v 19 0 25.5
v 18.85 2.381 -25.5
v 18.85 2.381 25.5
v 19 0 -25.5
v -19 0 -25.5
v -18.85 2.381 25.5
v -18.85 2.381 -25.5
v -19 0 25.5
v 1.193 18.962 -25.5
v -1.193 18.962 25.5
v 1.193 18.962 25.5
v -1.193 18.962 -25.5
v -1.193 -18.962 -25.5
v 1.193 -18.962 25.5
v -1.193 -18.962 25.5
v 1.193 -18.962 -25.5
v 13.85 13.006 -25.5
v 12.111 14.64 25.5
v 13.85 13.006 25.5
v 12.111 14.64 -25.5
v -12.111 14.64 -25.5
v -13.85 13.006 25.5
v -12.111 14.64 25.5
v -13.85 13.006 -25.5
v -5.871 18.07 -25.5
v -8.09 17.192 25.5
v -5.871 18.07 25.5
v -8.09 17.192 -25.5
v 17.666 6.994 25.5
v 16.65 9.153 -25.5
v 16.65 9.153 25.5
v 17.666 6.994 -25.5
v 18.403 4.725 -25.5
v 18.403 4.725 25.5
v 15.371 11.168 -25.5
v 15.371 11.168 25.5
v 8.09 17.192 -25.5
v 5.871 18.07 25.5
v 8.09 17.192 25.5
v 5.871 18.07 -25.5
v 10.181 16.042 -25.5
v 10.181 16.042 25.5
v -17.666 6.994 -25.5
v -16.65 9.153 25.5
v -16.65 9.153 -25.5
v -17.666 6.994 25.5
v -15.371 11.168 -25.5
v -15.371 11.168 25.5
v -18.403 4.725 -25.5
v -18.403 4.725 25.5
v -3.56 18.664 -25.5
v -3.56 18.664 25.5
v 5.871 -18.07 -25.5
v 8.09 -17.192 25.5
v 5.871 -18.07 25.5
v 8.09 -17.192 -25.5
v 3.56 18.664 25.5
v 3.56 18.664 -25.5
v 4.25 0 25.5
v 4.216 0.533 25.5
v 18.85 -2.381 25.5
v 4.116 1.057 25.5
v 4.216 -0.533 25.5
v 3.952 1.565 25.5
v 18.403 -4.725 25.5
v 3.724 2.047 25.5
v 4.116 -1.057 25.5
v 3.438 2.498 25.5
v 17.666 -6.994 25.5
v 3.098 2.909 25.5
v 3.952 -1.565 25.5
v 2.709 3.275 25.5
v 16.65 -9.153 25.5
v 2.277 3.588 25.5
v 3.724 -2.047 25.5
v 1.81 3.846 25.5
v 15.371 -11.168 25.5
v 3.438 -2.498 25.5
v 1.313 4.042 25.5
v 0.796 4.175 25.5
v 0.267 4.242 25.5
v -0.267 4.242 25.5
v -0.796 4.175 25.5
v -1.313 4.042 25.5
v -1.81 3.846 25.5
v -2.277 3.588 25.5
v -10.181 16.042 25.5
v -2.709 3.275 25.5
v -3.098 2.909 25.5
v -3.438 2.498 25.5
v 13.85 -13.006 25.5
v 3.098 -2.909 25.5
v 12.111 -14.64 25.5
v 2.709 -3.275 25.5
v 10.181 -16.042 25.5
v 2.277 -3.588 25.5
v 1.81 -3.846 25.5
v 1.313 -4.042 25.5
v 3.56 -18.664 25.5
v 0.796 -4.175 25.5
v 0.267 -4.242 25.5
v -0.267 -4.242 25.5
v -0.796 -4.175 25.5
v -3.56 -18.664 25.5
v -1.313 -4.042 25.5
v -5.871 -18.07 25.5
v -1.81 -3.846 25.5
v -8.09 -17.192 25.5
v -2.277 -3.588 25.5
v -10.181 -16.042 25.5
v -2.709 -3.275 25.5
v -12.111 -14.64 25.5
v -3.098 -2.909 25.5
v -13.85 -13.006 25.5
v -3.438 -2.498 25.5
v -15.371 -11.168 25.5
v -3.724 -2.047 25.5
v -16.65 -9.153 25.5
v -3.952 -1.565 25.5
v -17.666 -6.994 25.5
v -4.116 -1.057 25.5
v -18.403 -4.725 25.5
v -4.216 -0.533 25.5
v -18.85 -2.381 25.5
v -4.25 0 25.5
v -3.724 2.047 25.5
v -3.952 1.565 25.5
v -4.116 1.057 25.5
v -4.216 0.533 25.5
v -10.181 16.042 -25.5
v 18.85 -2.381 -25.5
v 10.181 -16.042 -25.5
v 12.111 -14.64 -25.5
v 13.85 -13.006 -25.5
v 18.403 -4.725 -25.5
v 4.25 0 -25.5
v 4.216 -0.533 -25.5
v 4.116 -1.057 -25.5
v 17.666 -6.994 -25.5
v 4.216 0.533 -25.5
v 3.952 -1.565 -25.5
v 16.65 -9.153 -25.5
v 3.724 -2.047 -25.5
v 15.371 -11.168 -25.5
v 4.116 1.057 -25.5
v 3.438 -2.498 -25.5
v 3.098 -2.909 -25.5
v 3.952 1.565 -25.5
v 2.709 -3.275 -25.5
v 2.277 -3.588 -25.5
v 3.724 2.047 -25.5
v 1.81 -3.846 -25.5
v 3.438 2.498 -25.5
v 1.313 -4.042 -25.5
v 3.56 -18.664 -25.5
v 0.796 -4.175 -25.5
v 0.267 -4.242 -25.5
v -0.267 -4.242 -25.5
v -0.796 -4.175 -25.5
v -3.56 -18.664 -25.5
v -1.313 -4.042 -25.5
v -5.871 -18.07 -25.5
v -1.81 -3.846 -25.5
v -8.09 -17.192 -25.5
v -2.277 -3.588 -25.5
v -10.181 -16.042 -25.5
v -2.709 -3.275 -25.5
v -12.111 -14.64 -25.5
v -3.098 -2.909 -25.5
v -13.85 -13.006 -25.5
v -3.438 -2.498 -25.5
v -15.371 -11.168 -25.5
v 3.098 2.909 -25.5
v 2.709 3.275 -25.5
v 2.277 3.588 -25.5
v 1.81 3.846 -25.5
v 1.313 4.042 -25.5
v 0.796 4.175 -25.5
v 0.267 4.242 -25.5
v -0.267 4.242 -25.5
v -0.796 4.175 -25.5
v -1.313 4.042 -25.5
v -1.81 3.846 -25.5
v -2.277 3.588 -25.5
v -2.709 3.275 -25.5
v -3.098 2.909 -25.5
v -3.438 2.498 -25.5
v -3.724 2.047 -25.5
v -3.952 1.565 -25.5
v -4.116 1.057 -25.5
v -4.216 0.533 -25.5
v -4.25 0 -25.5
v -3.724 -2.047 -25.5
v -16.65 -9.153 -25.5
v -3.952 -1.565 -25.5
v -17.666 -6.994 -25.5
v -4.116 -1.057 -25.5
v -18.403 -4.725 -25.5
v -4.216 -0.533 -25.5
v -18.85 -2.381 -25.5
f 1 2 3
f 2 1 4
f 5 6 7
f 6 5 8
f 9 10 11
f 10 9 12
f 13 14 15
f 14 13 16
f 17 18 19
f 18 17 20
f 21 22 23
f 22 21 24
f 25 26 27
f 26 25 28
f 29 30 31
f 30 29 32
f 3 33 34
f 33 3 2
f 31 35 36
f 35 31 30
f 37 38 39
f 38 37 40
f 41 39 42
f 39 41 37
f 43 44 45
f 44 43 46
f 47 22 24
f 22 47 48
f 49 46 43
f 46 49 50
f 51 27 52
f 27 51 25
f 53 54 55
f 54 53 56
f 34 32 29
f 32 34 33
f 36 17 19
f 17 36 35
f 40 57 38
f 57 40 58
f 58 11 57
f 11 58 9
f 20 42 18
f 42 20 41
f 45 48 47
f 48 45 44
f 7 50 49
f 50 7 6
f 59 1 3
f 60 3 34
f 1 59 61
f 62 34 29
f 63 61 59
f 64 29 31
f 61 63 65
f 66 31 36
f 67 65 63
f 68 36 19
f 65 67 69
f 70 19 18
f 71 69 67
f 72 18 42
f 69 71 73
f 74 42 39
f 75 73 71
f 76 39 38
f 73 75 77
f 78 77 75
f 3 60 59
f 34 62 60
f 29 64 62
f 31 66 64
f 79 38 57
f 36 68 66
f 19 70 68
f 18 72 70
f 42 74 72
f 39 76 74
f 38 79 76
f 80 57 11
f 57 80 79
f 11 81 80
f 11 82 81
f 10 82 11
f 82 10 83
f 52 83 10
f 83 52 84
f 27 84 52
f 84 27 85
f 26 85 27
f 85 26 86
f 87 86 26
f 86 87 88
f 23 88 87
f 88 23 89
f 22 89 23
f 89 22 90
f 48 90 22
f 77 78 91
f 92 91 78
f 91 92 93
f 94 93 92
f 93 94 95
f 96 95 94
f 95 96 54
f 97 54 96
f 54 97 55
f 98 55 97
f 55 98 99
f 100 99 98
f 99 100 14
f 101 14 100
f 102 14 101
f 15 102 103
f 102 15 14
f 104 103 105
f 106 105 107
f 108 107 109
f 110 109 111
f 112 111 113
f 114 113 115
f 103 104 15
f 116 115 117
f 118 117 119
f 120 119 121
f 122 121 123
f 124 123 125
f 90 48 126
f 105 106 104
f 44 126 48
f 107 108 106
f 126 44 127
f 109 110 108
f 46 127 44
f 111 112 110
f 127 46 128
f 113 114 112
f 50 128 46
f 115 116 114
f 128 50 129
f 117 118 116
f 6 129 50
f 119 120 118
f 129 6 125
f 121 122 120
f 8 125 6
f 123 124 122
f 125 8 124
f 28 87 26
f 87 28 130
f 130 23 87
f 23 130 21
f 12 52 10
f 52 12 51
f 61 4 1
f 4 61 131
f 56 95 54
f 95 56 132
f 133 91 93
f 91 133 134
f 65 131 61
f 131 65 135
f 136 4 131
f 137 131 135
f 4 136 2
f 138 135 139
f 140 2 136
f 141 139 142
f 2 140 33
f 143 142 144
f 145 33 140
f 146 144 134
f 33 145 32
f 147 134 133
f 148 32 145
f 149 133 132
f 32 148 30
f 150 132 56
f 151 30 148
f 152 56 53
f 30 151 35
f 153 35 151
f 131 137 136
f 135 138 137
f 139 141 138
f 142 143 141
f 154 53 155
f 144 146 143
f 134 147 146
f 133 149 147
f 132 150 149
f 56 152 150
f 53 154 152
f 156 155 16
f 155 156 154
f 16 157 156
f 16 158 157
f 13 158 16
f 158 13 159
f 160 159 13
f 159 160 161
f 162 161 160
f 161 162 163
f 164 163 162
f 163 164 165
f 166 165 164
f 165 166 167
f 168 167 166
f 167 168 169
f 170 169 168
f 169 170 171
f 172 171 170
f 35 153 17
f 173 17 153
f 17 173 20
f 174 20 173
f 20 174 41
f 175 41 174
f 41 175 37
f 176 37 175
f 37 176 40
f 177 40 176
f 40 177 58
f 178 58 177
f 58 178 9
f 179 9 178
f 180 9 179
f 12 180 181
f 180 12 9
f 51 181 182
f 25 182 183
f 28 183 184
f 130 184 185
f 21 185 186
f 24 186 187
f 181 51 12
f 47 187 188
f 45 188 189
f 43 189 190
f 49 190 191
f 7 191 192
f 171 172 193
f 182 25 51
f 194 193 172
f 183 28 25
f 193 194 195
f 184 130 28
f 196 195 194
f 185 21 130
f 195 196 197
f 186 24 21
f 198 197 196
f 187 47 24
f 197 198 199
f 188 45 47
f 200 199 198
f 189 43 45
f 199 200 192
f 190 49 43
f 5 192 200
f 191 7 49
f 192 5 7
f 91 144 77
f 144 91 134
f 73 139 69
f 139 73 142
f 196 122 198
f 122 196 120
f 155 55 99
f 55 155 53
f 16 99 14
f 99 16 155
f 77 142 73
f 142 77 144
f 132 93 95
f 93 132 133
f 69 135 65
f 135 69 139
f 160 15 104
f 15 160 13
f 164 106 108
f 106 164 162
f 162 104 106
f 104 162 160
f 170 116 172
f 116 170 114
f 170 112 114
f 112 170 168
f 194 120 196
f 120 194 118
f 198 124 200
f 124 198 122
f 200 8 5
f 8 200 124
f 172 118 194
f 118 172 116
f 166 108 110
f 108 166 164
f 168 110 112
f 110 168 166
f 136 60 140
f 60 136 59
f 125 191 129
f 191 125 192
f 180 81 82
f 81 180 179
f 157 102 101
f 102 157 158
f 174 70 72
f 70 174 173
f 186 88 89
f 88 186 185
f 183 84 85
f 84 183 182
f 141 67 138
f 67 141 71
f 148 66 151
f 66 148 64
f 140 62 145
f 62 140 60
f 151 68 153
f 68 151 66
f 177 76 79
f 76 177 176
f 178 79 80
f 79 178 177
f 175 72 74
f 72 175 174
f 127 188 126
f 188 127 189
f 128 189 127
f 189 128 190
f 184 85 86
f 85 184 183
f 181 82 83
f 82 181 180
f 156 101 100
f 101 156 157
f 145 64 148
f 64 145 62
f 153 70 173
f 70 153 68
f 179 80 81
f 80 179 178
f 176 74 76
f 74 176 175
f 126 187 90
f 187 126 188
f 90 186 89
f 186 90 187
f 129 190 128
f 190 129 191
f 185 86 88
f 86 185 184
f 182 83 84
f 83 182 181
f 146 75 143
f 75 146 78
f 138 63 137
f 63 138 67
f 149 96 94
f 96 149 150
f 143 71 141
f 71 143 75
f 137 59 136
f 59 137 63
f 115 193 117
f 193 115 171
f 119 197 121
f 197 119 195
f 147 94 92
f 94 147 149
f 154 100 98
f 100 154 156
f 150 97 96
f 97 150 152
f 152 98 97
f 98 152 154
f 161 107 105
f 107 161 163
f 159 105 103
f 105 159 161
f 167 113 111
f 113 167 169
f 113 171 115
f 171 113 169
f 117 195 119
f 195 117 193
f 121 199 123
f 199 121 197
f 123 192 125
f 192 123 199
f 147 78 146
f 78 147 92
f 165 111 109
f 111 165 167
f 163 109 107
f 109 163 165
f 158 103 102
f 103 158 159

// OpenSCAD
$fn = 50;


difference() {
	union() {
		translate(v = [0, 0, -25.5000000000]) {
			cylinder(h = 51, r = 19.0000000000);
		}
	}
	union() {
		translate(v = [0, 0, -100.0000000000]) {
			cylinder(h = 200, r = 4.2500000000);
		}
	}
}
